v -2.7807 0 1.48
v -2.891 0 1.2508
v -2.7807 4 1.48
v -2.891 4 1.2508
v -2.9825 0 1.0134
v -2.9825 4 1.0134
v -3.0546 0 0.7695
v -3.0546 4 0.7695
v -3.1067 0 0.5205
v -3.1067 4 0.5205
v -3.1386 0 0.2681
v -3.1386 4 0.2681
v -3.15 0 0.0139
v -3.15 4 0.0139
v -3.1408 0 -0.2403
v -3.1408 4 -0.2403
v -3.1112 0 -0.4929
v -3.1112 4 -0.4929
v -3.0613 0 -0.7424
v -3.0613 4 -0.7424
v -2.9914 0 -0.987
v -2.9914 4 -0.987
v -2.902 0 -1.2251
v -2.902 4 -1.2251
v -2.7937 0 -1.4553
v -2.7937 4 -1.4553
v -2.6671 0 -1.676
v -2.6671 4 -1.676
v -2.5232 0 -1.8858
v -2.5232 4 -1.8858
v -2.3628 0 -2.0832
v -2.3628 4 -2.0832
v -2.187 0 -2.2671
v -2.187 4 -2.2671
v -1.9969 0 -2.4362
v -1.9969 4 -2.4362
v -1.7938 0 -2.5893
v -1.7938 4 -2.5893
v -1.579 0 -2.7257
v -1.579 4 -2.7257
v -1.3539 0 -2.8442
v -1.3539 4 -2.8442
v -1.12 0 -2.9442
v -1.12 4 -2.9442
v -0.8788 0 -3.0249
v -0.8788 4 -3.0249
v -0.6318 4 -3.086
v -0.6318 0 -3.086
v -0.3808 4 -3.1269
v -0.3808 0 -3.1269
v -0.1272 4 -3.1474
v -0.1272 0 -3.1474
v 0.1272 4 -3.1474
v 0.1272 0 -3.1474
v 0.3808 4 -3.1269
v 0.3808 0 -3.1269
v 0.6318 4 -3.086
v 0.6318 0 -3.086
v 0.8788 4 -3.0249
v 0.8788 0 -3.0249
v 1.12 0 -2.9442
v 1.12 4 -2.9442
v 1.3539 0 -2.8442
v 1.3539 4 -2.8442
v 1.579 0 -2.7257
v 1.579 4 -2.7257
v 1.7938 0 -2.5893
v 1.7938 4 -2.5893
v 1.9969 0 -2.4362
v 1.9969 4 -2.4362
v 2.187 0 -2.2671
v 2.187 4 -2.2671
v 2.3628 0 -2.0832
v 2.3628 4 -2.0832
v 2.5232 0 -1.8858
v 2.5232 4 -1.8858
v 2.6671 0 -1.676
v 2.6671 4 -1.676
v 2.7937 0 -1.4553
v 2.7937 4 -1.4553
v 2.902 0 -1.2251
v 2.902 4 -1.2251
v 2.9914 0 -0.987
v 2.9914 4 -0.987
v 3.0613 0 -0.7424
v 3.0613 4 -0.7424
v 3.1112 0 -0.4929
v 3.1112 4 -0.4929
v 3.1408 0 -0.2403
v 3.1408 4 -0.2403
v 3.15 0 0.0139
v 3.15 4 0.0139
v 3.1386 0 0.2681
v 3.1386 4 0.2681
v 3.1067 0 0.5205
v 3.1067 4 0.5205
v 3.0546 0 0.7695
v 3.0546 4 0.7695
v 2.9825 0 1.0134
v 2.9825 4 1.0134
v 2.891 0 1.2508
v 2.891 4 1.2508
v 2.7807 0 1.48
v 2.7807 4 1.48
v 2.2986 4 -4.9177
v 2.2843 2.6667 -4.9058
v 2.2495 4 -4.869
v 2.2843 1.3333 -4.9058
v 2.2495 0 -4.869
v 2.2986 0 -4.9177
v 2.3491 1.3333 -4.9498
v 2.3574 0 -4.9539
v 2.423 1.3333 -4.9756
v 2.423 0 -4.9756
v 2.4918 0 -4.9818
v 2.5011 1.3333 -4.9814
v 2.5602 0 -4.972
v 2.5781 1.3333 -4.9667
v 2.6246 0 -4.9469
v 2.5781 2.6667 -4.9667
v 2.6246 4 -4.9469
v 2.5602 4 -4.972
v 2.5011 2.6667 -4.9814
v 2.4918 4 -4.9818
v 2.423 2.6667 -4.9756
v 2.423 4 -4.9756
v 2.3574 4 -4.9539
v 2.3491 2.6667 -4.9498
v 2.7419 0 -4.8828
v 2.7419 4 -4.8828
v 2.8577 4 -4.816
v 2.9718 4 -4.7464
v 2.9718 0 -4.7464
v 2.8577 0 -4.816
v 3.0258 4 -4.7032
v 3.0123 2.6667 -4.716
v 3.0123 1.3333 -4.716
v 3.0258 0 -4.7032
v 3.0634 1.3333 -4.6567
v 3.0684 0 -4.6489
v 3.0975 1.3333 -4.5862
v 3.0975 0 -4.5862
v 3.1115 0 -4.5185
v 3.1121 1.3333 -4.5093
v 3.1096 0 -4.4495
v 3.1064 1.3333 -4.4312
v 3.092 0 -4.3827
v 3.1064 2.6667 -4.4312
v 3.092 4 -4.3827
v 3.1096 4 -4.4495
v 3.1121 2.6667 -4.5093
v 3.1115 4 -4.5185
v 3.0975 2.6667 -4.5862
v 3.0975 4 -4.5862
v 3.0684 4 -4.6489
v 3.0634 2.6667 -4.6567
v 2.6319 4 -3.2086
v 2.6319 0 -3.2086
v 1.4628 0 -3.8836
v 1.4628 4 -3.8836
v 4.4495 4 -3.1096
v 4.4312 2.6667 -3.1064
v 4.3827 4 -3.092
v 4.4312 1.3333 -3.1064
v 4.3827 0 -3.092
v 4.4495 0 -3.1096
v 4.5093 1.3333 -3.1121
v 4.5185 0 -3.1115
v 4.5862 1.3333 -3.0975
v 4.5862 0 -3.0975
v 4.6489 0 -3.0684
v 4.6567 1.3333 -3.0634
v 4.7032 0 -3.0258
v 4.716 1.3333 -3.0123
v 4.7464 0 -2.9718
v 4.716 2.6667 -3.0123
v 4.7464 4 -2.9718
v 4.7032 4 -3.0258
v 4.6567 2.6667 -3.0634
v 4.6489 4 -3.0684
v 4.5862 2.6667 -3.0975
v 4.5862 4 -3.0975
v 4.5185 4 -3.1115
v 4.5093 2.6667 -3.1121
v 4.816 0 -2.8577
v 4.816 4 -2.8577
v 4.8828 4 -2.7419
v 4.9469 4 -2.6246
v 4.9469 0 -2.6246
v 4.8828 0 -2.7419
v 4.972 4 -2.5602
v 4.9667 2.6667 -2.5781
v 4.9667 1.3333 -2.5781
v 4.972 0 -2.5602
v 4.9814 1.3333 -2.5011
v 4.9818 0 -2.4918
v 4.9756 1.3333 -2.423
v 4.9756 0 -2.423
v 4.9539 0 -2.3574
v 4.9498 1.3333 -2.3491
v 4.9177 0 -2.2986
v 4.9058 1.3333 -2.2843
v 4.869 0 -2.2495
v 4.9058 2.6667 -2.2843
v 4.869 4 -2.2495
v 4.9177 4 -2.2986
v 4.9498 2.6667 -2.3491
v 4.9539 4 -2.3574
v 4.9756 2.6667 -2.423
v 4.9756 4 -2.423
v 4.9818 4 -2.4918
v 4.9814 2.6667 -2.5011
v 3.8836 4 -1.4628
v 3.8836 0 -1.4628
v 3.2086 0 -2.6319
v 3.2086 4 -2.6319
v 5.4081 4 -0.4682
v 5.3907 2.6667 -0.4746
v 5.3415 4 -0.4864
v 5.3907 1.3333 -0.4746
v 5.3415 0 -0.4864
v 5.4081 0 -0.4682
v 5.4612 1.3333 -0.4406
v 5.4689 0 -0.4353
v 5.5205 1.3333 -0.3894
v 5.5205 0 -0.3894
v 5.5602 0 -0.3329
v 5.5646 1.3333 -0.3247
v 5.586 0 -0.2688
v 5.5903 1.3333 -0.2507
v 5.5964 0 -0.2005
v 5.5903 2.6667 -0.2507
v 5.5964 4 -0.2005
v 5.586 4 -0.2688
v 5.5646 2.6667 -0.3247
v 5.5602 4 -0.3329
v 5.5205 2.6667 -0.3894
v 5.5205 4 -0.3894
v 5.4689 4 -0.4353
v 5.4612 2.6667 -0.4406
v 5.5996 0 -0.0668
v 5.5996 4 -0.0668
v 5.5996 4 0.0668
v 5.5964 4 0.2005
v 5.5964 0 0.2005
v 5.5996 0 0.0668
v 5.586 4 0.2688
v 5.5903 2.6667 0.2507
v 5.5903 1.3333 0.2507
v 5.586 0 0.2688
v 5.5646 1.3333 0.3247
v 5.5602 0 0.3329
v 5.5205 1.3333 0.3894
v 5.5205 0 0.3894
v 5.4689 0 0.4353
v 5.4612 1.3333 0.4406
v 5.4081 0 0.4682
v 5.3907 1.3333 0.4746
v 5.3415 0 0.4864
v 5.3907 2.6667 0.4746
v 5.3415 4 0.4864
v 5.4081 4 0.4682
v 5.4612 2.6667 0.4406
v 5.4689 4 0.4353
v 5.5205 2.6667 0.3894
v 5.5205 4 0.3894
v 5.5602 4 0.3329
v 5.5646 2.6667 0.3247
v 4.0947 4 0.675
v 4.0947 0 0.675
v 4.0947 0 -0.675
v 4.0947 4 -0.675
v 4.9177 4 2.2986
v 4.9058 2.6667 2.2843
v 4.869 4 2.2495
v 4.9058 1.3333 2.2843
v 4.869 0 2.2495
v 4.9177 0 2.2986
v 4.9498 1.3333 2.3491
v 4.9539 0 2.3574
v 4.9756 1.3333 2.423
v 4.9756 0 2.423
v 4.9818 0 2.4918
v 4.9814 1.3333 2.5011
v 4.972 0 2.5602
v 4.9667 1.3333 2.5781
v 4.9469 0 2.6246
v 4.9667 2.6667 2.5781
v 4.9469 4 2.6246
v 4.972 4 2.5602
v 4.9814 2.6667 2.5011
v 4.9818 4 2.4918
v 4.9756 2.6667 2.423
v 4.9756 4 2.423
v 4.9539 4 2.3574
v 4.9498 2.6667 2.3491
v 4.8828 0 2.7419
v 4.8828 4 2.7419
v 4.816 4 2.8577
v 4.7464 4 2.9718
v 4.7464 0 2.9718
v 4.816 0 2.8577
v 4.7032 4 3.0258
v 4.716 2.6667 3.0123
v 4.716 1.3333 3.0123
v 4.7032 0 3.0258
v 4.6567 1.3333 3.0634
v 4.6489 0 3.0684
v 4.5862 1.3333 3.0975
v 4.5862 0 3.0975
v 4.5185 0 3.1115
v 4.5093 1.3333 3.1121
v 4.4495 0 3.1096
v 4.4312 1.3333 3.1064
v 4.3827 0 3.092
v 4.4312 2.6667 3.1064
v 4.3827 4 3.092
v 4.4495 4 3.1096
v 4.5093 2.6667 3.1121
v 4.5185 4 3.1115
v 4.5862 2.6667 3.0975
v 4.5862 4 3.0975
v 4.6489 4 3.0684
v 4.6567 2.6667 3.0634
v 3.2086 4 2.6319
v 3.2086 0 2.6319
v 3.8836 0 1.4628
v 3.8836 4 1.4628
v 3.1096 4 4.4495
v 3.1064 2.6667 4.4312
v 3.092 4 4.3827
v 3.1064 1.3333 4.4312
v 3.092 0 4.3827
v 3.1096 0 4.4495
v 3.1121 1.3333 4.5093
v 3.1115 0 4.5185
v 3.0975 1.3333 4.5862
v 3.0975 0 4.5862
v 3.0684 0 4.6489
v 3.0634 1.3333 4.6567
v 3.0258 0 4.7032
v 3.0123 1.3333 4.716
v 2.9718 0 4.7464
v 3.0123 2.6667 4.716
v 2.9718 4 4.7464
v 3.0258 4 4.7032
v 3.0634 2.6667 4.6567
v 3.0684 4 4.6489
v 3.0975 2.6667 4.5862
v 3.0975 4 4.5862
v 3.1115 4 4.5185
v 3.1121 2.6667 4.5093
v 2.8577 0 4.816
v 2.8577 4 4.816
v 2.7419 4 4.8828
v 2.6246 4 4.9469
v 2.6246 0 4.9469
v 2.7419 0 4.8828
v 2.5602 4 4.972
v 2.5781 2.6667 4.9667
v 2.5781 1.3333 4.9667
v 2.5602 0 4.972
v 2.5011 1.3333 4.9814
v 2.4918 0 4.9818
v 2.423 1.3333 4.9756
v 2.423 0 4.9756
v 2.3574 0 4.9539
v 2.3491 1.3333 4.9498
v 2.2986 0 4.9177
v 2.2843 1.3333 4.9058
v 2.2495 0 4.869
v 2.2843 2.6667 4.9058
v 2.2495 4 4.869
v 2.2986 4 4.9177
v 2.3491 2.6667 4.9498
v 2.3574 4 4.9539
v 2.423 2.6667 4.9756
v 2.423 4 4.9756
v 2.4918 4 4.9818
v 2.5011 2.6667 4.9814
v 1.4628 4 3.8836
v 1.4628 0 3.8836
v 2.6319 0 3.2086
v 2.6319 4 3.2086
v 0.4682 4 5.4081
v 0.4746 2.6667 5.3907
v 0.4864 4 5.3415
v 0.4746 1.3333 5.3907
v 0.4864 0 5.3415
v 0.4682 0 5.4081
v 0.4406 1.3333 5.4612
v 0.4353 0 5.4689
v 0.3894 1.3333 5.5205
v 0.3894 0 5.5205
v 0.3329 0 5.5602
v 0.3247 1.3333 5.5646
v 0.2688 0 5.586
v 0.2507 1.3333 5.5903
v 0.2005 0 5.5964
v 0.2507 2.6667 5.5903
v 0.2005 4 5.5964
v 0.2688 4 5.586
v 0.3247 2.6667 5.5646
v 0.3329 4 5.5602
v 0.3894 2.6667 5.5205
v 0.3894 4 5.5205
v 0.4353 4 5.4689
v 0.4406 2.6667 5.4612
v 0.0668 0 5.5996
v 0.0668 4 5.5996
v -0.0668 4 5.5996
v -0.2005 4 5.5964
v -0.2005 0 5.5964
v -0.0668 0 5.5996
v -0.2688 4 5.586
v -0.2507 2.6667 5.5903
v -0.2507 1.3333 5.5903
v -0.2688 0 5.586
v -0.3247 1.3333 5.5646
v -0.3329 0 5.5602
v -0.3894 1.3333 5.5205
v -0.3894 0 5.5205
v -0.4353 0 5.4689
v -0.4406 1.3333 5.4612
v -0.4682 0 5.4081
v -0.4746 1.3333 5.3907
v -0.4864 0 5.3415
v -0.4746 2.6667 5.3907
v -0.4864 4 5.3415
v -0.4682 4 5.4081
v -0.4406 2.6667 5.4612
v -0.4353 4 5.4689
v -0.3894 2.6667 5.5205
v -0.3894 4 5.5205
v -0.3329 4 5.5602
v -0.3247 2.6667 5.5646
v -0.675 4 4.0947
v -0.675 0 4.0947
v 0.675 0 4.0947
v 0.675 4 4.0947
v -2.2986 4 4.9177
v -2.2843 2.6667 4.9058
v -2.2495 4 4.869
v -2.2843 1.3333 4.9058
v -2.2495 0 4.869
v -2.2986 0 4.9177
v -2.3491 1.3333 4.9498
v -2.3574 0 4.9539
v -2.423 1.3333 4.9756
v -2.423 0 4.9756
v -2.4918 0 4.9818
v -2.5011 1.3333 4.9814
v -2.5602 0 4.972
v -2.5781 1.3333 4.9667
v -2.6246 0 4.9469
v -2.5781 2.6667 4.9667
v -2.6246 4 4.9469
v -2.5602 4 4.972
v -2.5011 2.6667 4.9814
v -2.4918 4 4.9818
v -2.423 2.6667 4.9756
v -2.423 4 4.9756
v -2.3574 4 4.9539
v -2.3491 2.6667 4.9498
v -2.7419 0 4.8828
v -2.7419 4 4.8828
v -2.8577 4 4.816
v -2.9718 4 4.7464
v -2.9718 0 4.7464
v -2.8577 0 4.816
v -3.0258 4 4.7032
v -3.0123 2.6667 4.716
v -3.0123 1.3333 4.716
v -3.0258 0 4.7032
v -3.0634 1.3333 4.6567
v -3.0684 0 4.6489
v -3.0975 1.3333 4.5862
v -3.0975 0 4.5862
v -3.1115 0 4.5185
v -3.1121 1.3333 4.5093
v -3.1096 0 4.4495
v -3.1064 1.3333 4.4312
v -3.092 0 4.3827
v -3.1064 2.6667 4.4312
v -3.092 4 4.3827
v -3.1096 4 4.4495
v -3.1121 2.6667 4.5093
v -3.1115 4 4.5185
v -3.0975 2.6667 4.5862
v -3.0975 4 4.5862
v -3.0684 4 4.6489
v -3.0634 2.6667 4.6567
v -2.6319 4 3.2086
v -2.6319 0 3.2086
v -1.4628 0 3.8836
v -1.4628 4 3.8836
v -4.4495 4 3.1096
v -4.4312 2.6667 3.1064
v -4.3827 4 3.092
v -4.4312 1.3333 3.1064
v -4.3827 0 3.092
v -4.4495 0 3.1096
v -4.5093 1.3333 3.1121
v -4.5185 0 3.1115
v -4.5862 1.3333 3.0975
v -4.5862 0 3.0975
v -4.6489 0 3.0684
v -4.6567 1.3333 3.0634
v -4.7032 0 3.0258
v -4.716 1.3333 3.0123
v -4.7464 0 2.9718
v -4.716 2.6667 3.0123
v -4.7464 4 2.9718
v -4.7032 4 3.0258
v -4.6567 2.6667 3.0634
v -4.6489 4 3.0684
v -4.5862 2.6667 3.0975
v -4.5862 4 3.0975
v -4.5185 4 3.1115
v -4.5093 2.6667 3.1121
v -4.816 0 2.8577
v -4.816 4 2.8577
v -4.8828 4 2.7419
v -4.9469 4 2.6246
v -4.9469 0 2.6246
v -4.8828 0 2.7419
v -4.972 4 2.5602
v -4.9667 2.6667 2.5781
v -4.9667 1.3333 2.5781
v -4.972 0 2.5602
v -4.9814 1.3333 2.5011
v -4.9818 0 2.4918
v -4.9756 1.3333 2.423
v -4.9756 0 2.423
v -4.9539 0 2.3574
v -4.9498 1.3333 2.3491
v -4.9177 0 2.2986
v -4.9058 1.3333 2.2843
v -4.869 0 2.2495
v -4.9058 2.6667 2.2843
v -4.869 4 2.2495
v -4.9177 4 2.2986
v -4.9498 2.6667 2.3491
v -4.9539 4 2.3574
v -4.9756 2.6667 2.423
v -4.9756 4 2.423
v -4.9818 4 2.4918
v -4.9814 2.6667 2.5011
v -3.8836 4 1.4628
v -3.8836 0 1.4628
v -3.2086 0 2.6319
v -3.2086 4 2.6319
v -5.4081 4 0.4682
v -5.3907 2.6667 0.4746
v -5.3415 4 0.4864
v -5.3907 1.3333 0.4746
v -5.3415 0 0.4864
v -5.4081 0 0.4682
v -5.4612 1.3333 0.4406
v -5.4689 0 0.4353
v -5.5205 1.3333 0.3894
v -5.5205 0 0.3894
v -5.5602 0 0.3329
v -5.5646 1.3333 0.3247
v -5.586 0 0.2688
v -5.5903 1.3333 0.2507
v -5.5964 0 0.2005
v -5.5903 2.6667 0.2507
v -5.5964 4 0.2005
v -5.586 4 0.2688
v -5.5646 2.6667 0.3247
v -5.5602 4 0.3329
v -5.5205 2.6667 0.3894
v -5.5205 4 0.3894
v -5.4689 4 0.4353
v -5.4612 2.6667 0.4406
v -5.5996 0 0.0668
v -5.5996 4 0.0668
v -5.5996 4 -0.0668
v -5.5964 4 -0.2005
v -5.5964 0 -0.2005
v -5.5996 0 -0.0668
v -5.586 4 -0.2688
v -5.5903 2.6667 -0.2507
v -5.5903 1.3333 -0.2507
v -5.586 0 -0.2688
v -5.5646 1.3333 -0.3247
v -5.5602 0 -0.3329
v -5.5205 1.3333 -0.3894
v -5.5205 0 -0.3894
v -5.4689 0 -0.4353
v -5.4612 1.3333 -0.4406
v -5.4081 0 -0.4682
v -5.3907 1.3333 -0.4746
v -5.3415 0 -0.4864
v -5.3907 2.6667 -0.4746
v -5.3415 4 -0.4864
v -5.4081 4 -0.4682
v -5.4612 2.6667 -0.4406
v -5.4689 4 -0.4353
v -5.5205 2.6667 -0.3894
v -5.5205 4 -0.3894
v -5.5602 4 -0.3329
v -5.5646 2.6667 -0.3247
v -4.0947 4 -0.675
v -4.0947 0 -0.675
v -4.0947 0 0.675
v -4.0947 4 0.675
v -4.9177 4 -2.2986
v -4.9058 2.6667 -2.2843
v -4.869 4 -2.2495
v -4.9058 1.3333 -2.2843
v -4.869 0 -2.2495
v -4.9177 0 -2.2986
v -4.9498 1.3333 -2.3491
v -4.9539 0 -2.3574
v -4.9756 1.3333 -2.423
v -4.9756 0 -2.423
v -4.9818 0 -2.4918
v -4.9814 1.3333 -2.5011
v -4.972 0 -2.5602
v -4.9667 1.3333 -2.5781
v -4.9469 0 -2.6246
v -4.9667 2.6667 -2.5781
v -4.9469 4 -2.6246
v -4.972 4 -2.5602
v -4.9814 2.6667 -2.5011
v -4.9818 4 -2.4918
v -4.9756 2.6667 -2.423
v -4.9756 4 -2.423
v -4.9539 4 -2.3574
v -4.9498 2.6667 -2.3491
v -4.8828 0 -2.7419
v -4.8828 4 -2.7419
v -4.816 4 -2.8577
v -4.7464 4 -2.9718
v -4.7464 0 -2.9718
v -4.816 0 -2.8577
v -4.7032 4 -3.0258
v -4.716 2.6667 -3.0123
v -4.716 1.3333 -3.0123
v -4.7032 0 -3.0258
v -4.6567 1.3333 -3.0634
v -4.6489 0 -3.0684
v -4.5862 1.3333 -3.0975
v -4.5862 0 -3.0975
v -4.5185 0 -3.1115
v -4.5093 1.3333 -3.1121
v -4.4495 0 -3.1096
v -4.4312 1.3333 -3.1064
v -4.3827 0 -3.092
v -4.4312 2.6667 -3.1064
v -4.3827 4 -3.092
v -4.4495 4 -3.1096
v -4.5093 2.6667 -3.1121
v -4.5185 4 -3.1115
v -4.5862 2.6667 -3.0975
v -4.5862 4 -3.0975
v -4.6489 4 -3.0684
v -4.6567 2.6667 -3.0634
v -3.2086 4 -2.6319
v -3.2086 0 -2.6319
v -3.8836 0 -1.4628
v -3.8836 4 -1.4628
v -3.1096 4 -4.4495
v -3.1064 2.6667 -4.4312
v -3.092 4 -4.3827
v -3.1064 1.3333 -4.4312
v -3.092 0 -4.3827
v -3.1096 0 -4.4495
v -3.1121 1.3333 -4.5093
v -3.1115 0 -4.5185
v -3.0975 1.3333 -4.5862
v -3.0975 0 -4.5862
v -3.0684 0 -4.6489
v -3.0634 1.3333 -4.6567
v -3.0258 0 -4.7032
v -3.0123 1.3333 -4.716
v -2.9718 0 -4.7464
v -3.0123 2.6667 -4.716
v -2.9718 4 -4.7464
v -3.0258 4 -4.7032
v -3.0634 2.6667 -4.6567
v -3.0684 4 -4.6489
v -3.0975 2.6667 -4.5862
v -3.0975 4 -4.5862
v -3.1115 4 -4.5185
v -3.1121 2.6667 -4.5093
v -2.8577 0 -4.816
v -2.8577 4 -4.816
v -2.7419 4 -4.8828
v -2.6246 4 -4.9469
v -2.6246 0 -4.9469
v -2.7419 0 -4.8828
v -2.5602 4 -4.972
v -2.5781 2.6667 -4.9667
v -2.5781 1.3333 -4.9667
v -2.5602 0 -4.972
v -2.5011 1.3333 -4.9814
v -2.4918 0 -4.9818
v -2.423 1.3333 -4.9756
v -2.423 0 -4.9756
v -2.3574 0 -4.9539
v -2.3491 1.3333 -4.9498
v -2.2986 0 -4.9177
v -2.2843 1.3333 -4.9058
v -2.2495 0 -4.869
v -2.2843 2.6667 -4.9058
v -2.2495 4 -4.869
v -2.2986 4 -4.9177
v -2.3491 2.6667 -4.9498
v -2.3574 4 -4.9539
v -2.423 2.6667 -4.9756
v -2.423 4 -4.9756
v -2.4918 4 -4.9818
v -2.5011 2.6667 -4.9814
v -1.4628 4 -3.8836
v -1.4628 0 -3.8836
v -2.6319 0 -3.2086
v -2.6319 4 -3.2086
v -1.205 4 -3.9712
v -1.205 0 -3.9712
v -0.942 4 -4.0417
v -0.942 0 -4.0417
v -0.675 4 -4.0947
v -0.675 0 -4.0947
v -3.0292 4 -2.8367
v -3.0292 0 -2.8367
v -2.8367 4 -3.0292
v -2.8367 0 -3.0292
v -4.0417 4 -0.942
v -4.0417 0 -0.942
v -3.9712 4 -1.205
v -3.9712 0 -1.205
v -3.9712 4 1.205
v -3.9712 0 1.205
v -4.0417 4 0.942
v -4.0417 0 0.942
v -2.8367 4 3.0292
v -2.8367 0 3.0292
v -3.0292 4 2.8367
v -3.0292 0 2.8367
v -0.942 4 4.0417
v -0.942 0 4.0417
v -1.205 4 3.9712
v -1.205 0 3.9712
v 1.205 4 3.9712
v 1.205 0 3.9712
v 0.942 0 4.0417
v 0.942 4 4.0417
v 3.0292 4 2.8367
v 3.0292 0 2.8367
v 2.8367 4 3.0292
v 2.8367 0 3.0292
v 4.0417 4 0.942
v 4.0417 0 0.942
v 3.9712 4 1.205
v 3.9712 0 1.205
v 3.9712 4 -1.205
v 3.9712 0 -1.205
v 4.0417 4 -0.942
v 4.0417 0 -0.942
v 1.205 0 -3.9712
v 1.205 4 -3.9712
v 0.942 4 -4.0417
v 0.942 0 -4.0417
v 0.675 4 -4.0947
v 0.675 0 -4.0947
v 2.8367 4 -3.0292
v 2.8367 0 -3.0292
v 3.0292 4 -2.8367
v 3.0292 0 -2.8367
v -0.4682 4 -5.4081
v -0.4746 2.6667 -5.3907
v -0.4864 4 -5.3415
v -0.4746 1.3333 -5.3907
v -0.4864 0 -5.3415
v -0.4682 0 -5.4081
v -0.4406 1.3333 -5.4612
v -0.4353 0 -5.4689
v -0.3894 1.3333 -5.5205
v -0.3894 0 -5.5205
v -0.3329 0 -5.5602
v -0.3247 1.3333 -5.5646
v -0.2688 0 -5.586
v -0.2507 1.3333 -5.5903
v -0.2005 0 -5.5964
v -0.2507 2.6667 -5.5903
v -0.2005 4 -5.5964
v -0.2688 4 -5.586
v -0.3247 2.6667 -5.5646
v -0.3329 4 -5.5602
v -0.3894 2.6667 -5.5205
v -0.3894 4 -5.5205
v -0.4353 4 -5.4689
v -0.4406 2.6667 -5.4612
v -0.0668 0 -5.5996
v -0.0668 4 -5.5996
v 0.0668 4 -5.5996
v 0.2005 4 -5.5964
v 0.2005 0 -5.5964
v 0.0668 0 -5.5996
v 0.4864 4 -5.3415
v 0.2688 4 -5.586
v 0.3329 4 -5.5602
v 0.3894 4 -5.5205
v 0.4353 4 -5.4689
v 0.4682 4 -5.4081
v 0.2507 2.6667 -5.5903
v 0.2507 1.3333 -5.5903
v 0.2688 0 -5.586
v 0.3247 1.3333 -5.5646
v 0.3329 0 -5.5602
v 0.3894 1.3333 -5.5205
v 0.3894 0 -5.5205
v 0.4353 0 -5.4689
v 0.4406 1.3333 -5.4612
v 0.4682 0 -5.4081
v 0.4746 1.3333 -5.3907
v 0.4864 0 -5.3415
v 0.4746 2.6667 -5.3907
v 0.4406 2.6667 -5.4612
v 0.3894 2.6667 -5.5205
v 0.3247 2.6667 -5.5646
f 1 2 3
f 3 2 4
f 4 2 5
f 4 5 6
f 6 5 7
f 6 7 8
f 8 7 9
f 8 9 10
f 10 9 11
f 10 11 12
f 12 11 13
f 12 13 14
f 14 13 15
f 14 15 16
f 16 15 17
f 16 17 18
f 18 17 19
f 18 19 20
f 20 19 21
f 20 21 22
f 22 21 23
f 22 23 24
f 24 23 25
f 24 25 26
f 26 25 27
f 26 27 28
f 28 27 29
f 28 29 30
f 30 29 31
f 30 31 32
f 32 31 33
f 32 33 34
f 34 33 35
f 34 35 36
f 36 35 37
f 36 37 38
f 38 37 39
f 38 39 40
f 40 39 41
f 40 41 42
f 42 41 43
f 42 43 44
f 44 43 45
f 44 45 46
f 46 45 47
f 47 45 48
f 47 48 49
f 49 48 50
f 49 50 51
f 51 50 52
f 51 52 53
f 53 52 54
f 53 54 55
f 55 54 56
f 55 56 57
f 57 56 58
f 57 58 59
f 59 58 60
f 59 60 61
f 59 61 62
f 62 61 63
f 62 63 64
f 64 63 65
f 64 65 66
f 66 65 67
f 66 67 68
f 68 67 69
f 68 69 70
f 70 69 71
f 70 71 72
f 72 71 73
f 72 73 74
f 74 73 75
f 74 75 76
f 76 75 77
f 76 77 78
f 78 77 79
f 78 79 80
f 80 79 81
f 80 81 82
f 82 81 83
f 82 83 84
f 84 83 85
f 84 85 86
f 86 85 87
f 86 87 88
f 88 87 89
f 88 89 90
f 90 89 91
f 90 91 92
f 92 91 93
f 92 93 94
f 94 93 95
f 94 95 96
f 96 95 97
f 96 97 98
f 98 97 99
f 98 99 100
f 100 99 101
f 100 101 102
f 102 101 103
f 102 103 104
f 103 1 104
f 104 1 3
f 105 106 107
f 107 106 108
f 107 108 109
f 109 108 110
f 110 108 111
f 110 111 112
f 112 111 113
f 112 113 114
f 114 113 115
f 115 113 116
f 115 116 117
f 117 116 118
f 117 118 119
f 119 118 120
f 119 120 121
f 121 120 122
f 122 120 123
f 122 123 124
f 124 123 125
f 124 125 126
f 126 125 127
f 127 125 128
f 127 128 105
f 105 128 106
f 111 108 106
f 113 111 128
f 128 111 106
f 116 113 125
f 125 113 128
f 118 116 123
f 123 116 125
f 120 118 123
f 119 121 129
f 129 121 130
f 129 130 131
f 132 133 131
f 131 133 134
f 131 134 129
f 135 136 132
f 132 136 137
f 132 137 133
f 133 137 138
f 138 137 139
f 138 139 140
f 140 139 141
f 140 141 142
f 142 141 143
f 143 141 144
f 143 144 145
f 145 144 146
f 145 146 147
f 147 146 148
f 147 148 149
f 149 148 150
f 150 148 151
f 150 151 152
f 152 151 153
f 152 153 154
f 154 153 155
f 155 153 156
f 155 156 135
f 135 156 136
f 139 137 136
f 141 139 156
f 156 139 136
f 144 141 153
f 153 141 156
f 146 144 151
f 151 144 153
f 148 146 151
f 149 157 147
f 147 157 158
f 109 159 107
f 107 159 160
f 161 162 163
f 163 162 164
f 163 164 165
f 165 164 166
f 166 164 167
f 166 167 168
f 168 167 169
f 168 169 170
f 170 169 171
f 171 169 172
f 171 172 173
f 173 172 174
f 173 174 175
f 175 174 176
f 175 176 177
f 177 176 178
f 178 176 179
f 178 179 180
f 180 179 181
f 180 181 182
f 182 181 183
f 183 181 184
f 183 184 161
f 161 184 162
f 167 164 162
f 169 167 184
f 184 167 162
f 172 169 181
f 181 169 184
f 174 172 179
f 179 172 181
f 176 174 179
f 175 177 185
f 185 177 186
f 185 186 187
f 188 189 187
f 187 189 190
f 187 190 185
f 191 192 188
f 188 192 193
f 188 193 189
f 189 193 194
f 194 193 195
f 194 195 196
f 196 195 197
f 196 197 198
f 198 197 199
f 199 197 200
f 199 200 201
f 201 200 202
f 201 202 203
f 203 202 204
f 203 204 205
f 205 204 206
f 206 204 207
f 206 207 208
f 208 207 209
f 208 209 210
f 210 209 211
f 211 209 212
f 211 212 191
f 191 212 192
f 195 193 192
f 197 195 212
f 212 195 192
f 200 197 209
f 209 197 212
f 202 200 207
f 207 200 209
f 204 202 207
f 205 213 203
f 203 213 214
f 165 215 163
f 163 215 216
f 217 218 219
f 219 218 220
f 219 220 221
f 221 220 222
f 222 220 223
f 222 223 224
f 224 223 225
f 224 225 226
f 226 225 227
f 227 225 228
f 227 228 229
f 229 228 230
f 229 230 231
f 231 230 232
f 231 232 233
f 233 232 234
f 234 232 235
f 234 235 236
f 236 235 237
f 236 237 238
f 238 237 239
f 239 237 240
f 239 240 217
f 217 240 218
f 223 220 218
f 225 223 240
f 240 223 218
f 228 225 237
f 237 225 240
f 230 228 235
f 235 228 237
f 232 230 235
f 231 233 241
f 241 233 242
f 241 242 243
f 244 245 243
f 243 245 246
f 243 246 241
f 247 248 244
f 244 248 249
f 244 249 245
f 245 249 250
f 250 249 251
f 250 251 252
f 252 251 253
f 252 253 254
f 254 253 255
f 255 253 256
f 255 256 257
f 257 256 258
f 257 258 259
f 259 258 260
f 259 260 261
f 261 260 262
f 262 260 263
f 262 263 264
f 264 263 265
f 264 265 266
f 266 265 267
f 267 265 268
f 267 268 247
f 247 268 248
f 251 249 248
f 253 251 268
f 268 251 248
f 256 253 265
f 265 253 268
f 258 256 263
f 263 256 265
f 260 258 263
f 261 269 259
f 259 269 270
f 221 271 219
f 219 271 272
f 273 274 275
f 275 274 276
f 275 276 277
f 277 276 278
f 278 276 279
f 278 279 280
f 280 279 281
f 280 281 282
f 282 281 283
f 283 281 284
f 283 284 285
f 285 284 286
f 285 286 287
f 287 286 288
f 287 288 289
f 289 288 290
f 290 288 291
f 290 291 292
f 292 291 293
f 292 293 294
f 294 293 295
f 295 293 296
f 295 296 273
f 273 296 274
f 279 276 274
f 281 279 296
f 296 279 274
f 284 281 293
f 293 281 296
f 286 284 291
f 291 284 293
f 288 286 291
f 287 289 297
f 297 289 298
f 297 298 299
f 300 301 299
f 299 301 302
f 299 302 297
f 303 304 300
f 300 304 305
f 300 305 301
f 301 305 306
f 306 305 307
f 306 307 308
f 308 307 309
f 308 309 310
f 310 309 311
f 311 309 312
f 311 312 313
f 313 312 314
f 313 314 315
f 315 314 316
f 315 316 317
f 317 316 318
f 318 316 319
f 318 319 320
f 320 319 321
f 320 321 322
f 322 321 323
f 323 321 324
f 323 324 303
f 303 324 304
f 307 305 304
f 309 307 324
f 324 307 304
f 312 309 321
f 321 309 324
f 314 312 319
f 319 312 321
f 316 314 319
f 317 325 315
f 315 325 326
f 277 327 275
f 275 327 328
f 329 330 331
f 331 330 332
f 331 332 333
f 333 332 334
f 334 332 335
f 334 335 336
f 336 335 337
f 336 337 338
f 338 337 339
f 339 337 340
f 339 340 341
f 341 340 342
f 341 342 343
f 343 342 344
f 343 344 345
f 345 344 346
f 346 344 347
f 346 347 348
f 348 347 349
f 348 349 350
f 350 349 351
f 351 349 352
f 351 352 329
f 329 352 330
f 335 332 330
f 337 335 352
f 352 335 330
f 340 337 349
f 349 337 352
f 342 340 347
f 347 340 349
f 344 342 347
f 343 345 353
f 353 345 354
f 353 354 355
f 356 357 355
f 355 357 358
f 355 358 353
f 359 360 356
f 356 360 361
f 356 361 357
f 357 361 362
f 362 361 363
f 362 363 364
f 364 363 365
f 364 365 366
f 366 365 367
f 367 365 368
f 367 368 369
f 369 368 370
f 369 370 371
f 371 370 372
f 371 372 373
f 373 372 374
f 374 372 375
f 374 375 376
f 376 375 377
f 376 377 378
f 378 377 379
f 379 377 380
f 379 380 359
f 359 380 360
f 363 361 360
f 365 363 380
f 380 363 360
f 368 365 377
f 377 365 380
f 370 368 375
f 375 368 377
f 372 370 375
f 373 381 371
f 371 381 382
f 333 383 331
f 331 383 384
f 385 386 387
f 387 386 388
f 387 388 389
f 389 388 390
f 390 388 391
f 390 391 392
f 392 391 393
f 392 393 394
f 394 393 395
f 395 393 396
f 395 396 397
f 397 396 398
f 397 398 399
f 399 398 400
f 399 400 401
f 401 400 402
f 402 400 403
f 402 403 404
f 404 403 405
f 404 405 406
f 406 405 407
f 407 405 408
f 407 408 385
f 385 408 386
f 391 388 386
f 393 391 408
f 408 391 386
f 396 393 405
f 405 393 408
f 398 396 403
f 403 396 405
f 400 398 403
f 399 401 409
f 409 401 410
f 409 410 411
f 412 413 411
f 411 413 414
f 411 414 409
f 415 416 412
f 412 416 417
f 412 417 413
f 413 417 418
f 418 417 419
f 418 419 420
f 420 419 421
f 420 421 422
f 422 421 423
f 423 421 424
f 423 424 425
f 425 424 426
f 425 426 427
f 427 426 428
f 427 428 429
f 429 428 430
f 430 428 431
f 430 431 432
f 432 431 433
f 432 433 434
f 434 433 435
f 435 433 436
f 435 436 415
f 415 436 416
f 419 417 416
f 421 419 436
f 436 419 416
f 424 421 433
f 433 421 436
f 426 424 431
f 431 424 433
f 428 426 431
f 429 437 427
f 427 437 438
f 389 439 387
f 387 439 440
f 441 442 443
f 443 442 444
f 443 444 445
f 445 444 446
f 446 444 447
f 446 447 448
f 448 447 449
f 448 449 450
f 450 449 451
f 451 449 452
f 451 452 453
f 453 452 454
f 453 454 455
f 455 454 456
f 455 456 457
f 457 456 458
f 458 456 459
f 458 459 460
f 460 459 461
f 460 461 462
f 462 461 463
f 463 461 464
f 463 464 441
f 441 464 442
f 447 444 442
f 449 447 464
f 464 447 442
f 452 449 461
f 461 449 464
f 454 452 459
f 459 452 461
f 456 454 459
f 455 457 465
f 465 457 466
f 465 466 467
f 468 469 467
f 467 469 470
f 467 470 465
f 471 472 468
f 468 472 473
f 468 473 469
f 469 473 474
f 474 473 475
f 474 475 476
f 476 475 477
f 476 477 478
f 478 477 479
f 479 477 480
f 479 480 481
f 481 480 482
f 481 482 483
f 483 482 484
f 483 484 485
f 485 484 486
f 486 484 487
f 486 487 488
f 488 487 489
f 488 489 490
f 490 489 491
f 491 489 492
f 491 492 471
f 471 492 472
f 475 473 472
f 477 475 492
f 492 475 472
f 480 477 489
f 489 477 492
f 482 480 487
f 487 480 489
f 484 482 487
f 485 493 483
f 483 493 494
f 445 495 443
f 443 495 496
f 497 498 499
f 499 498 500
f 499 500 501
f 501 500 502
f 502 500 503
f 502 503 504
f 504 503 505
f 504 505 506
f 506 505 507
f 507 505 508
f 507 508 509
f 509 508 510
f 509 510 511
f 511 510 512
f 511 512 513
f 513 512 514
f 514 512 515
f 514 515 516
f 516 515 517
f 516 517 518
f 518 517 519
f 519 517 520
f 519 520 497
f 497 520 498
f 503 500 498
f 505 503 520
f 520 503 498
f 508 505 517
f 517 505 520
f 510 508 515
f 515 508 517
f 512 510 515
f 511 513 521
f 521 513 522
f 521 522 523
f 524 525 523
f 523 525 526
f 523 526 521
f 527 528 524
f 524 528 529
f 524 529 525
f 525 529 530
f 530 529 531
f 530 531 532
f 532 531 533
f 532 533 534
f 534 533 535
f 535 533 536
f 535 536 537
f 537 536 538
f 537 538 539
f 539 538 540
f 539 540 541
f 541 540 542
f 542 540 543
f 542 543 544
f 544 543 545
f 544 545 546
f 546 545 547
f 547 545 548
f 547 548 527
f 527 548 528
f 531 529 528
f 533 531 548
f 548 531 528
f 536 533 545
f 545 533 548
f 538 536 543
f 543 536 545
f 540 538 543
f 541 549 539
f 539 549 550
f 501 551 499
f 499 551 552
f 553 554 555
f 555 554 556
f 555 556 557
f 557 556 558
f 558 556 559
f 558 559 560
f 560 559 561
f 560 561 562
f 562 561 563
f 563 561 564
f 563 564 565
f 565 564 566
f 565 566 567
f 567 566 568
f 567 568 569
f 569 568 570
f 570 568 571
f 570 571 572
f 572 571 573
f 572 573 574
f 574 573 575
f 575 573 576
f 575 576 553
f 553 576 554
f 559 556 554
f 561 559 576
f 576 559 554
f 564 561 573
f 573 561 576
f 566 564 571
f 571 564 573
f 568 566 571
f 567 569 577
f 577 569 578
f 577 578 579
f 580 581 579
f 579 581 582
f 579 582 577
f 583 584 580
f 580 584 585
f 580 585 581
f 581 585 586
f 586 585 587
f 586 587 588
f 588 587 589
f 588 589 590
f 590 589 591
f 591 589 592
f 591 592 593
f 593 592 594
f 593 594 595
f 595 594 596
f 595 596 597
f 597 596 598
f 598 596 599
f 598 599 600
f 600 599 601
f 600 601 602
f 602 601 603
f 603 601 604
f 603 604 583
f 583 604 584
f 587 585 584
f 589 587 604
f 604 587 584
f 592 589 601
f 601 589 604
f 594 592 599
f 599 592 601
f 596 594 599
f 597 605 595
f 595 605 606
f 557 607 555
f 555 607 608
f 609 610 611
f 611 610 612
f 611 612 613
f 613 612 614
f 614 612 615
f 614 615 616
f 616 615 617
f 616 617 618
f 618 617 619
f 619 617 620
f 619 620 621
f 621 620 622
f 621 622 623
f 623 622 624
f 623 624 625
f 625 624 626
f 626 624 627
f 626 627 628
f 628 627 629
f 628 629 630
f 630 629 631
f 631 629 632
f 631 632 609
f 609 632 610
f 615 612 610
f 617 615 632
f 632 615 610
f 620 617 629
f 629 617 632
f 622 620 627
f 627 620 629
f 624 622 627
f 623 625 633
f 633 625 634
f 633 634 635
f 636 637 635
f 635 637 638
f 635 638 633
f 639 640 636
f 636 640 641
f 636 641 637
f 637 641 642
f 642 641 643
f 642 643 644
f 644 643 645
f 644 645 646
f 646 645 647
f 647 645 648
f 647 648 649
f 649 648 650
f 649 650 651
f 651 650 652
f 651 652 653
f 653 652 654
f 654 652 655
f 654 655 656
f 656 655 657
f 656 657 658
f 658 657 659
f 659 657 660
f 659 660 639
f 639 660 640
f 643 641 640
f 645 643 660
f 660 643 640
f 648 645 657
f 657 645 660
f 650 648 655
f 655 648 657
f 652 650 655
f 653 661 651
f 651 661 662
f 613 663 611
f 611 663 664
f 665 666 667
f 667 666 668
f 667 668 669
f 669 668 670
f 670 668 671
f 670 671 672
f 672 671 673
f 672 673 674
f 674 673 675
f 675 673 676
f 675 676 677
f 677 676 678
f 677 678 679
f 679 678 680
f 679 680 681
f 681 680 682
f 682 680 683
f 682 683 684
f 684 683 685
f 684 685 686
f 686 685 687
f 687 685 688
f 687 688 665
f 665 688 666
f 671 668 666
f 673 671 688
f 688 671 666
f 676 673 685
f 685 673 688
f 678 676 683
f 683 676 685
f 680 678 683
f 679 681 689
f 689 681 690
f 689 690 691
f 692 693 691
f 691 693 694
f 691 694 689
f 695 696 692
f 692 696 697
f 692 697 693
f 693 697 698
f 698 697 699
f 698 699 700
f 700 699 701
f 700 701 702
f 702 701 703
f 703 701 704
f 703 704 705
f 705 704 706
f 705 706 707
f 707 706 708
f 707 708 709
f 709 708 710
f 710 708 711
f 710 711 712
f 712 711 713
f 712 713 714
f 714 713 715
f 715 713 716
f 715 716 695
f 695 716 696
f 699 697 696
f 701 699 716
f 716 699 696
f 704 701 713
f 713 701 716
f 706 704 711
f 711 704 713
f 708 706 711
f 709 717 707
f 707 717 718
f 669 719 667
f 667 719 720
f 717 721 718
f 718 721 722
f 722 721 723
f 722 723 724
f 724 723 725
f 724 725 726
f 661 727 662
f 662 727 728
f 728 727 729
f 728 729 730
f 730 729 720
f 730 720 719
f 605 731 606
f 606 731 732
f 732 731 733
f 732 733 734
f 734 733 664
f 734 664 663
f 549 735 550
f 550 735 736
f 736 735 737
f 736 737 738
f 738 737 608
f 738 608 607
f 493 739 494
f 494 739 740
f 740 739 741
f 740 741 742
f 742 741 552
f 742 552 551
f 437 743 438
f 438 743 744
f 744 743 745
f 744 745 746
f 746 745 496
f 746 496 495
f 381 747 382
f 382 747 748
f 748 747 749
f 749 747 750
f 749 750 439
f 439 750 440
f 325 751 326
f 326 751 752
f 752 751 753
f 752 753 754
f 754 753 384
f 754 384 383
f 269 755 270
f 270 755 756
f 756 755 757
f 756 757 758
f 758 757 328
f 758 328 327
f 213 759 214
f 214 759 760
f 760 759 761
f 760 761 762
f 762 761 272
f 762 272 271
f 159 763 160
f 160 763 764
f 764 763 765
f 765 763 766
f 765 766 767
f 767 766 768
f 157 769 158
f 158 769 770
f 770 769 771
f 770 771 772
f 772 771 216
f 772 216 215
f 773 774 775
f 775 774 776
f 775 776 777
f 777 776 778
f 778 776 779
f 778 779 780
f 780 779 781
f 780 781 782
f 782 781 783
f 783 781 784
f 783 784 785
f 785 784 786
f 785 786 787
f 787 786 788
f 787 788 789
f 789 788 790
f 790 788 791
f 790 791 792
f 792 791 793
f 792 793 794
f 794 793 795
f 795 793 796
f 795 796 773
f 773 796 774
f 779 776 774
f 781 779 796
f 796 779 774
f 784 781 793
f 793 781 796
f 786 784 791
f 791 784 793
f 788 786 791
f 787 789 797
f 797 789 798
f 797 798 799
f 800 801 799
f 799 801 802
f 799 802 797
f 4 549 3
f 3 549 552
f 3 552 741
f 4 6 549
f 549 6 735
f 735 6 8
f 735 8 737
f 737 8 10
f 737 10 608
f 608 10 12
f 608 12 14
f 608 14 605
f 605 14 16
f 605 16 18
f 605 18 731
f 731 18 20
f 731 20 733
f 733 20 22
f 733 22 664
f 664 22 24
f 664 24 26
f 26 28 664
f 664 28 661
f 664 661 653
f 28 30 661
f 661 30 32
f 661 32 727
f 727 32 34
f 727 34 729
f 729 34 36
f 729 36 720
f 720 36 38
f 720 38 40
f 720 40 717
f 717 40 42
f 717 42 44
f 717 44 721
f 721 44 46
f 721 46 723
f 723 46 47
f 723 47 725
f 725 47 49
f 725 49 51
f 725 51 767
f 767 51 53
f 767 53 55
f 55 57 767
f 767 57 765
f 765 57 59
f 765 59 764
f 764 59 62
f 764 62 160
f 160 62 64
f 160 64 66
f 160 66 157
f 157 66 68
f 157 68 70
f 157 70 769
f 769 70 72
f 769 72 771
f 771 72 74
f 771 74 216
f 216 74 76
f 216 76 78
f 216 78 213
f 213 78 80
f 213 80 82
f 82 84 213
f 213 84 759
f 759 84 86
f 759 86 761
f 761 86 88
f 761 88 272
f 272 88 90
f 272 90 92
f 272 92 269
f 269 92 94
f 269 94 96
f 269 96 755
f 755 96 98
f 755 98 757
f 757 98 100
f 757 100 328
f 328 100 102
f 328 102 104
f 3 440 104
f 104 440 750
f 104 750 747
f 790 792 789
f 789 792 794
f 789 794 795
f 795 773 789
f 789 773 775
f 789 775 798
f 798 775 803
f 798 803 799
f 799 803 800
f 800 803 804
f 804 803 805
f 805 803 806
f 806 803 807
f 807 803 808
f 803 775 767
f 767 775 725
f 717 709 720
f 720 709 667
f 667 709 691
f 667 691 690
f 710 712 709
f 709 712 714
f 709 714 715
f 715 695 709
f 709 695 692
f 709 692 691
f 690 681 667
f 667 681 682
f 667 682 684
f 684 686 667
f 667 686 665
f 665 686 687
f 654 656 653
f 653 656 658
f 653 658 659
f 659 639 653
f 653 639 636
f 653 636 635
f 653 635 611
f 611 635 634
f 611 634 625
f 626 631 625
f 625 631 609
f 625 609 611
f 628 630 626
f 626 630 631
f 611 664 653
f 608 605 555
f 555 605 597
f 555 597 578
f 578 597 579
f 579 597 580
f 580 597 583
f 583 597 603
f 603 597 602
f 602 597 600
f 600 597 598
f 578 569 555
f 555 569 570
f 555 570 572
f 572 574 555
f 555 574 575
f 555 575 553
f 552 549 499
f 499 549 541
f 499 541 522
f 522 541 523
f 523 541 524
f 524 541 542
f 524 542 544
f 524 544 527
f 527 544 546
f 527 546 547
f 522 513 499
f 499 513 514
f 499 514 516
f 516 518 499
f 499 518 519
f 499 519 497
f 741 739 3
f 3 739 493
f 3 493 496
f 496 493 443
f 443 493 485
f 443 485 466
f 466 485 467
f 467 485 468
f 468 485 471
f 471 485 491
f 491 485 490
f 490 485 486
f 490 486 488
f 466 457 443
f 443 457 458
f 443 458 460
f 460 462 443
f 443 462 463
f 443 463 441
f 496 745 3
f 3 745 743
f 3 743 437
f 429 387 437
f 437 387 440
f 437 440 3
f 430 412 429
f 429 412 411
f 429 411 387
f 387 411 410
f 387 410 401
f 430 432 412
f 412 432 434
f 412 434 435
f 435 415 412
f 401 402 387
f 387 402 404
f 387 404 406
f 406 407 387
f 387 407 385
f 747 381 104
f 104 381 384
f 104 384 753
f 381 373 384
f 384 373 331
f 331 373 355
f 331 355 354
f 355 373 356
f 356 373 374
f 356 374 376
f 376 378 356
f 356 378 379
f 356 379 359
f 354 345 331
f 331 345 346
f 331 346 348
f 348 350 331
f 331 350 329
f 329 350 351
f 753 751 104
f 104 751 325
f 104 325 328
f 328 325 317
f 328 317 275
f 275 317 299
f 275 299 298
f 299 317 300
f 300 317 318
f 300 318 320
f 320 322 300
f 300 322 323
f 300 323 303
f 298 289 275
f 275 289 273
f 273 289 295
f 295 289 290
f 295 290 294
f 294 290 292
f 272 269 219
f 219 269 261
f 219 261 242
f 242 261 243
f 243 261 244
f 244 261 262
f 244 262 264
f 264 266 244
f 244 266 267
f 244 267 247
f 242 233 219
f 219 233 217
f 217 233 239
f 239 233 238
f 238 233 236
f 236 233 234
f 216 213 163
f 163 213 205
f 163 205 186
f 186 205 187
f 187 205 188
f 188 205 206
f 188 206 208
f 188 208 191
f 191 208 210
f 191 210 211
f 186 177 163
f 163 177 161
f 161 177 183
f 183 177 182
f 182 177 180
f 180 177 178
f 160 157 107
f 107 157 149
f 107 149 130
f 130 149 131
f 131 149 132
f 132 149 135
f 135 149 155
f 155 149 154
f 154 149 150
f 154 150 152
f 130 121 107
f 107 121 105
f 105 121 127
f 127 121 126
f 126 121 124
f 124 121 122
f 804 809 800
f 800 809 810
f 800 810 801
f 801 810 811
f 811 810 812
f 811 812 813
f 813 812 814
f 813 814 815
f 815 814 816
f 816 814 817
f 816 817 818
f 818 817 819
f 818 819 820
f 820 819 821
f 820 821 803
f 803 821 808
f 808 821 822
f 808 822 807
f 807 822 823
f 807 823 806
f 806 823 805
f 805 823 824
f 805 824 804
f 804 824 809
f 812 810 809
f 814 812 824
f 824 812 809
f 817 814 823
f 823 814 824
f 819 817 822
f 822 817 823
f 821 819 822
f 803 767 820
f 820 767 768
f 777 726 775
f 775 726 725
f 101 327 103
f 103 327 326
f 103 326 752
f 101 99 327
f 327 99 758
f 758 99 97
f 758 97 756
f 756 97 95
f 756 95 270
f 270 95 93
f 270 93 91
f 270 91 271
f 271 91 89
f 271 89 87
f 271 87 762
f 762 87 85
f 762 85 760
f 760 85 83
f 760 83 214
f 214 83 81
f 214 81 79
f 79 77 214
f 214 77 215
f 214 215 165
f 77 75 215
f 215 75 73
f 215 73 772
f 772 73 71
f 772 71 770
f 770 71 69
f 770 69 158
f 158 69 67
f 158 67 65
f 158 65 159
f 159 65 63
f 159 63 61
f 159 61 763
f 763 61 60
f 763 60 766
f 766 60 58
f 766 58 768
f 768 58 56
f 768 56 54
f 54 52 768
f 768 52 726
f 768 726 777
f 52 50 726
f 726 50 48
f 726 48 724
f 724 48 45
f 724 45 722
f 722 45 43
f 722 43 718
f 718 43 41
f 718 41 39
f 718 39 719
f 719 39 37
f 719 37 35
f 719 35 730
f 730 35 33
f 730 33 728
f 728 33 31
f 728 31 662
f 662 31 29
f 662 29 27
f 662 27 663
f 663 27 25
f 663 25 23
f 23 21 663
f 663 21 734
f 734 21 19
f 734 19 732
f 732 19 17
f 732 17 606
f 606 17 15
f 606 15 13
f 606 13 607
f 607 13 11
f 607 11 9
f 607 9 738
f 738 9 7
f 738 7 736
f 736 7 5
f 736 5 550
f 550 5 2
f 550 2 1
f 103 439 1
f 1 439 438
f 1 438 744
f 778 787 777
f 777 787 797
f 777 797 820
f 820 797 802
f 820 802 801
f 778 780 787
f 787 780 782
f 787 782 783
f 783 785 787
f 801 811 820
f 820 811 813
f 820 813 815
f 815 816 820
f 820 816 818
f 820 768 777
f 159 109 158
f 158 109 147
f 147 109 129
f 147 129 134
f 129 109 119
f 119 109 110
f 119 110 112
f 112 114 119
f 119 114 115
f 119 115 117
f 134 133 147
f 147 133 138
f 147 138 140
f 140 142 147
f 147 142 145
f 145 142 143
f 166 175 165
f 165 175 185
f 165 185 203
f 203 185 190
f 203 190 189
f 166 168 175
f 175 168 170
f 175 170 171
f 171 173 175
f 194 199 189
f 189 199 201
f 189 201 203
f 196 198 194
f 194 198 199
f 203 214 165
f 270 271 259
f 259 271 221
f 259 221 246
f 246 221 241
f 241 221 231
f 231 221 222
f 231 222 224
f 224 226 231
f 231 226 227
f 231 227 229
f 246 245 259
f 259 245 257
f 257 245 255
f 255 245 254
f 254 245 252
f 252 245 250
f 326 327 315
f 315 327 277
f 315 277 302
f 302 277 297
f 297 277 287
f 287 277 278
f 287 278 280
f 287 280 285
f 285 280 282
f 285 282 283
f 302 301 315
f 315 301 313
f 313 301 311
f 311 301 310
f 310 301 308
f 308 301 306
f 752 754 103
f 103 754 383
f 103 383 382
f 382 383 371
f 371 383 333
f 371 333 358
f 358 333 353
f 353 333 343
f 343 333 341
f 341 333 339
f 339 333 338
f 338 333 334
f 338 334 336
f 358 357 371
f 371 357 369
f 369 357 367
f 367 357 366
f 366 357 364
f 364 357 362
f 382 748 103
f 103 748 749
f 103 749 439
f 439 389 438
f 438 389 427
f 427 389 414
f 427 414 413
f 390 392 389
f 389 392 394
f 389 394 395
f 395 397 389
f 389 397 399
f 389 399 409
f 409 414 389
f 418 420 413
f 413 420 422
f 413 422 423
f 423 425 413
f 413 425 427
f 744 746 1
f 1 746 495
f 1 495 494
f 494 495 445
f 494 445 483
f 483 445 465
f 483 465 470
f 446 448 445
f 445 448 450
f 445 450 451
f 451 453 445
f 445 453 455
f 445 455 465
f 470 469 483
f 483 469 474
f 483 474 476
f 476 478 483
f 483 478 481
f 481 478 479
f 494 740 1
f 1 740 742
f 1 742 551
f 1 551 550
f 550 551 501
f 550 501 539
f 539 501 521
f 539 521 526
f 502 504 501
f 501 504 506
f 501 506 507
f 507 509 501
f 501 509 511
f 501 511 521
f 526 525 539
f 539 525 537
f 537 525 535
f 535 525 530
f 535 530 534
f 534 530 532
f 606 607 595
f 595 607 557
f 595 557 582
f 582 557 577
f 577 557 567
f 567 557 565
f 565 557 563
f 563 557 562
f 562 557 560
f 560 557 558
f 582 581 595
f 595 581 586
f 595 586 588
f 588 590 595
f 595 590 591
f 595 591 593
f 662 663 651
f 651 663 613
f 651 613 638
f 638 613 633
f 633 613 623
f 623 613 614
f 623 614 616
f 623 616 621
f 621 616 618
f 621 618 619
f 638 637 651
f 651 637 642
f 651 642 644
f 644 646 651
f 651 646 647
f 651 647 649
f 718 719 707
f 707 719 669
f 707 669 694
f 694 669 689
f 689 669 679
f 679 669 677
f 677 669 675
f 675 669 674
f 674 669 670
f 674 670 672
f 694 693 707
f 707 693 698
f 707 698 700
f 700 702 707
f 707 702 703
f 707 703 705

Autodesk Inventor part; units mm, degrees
ref_plane "YZ Plane" through (0, 0, 0) normal (1, 0, 0) x (0, 1, 0)
ref_plane "XZ Plane" through (0, 0, 0) normal (0, 1, 0) x (-1, 0, 0)
ref_plane "XY Plane" through (0, 0, 0) normal (0, 0, 1) x (1, 0, 0)
sketch "Sketch1" plane through (0, 0, 0) normal (0, 1, 0) x (-1, 0, 0)
  arc A0 (0.45, -5.5819) -> (-0.45, -5.5819) centre (0, 0) ccw construction
  circle A1 centre (0, 0) radius 4.15
  line L0 (-0.45, -5.5819) -> (-0.675, -4.0947)
  line L1 (0.675, -4.0947) -> (0.45, -5.5819)
  line L2 (0.675, -4.0947) -> (-0.675, -4.0947) construction
  line L3 (0.45, -5.5819) -> (-0.45, -5.5819) construction
  arc A2 (-0.45, -5.5819) -> (0.45, -5.5819) centre (0, 0) ccw
  circle A3 centre (0, 0) radius 3 construction
  circle A4 centre (0, 0) radius 3.15
  line L4 (2.7807, 1.48) -> (-2.7807, 1.48)
  dimension "d1" = 11.2
  dimension "d2" = 8.3
  dimension "d3" = 0.9
  dimension "d4" = 1.35
  dimension "d13" = 6
  dimension "d16" = 0.15
  dimension "d17" = 1.48
extrude "Extrusion1" add sketch "Sketch1" along normal blind 4 contours A1 | A4 L4 | L4 A4
extrude "Extrusion2" add sketch "Sketch1" along normal blind 4 contours A1 L1 A2 L0
fillet "Fillet1" radius 0.3 2 edges at (0.45, 2, -5.5819) (-0.45, 2, -5.5819)
pattern_circular "Circular Pattern1" count 12 over 360 about axis through (0, 0, 0) along (0, 1, 0) of "Extrusion2", "Fillet1"
extrude "Extrusion3" cut sketch "Sketch1" along normal blind 4 contours A4 L4 picked at (1.2217, -1.3888)
properties part number "Motor Shaft Gear E" material "ABS Plastic"
